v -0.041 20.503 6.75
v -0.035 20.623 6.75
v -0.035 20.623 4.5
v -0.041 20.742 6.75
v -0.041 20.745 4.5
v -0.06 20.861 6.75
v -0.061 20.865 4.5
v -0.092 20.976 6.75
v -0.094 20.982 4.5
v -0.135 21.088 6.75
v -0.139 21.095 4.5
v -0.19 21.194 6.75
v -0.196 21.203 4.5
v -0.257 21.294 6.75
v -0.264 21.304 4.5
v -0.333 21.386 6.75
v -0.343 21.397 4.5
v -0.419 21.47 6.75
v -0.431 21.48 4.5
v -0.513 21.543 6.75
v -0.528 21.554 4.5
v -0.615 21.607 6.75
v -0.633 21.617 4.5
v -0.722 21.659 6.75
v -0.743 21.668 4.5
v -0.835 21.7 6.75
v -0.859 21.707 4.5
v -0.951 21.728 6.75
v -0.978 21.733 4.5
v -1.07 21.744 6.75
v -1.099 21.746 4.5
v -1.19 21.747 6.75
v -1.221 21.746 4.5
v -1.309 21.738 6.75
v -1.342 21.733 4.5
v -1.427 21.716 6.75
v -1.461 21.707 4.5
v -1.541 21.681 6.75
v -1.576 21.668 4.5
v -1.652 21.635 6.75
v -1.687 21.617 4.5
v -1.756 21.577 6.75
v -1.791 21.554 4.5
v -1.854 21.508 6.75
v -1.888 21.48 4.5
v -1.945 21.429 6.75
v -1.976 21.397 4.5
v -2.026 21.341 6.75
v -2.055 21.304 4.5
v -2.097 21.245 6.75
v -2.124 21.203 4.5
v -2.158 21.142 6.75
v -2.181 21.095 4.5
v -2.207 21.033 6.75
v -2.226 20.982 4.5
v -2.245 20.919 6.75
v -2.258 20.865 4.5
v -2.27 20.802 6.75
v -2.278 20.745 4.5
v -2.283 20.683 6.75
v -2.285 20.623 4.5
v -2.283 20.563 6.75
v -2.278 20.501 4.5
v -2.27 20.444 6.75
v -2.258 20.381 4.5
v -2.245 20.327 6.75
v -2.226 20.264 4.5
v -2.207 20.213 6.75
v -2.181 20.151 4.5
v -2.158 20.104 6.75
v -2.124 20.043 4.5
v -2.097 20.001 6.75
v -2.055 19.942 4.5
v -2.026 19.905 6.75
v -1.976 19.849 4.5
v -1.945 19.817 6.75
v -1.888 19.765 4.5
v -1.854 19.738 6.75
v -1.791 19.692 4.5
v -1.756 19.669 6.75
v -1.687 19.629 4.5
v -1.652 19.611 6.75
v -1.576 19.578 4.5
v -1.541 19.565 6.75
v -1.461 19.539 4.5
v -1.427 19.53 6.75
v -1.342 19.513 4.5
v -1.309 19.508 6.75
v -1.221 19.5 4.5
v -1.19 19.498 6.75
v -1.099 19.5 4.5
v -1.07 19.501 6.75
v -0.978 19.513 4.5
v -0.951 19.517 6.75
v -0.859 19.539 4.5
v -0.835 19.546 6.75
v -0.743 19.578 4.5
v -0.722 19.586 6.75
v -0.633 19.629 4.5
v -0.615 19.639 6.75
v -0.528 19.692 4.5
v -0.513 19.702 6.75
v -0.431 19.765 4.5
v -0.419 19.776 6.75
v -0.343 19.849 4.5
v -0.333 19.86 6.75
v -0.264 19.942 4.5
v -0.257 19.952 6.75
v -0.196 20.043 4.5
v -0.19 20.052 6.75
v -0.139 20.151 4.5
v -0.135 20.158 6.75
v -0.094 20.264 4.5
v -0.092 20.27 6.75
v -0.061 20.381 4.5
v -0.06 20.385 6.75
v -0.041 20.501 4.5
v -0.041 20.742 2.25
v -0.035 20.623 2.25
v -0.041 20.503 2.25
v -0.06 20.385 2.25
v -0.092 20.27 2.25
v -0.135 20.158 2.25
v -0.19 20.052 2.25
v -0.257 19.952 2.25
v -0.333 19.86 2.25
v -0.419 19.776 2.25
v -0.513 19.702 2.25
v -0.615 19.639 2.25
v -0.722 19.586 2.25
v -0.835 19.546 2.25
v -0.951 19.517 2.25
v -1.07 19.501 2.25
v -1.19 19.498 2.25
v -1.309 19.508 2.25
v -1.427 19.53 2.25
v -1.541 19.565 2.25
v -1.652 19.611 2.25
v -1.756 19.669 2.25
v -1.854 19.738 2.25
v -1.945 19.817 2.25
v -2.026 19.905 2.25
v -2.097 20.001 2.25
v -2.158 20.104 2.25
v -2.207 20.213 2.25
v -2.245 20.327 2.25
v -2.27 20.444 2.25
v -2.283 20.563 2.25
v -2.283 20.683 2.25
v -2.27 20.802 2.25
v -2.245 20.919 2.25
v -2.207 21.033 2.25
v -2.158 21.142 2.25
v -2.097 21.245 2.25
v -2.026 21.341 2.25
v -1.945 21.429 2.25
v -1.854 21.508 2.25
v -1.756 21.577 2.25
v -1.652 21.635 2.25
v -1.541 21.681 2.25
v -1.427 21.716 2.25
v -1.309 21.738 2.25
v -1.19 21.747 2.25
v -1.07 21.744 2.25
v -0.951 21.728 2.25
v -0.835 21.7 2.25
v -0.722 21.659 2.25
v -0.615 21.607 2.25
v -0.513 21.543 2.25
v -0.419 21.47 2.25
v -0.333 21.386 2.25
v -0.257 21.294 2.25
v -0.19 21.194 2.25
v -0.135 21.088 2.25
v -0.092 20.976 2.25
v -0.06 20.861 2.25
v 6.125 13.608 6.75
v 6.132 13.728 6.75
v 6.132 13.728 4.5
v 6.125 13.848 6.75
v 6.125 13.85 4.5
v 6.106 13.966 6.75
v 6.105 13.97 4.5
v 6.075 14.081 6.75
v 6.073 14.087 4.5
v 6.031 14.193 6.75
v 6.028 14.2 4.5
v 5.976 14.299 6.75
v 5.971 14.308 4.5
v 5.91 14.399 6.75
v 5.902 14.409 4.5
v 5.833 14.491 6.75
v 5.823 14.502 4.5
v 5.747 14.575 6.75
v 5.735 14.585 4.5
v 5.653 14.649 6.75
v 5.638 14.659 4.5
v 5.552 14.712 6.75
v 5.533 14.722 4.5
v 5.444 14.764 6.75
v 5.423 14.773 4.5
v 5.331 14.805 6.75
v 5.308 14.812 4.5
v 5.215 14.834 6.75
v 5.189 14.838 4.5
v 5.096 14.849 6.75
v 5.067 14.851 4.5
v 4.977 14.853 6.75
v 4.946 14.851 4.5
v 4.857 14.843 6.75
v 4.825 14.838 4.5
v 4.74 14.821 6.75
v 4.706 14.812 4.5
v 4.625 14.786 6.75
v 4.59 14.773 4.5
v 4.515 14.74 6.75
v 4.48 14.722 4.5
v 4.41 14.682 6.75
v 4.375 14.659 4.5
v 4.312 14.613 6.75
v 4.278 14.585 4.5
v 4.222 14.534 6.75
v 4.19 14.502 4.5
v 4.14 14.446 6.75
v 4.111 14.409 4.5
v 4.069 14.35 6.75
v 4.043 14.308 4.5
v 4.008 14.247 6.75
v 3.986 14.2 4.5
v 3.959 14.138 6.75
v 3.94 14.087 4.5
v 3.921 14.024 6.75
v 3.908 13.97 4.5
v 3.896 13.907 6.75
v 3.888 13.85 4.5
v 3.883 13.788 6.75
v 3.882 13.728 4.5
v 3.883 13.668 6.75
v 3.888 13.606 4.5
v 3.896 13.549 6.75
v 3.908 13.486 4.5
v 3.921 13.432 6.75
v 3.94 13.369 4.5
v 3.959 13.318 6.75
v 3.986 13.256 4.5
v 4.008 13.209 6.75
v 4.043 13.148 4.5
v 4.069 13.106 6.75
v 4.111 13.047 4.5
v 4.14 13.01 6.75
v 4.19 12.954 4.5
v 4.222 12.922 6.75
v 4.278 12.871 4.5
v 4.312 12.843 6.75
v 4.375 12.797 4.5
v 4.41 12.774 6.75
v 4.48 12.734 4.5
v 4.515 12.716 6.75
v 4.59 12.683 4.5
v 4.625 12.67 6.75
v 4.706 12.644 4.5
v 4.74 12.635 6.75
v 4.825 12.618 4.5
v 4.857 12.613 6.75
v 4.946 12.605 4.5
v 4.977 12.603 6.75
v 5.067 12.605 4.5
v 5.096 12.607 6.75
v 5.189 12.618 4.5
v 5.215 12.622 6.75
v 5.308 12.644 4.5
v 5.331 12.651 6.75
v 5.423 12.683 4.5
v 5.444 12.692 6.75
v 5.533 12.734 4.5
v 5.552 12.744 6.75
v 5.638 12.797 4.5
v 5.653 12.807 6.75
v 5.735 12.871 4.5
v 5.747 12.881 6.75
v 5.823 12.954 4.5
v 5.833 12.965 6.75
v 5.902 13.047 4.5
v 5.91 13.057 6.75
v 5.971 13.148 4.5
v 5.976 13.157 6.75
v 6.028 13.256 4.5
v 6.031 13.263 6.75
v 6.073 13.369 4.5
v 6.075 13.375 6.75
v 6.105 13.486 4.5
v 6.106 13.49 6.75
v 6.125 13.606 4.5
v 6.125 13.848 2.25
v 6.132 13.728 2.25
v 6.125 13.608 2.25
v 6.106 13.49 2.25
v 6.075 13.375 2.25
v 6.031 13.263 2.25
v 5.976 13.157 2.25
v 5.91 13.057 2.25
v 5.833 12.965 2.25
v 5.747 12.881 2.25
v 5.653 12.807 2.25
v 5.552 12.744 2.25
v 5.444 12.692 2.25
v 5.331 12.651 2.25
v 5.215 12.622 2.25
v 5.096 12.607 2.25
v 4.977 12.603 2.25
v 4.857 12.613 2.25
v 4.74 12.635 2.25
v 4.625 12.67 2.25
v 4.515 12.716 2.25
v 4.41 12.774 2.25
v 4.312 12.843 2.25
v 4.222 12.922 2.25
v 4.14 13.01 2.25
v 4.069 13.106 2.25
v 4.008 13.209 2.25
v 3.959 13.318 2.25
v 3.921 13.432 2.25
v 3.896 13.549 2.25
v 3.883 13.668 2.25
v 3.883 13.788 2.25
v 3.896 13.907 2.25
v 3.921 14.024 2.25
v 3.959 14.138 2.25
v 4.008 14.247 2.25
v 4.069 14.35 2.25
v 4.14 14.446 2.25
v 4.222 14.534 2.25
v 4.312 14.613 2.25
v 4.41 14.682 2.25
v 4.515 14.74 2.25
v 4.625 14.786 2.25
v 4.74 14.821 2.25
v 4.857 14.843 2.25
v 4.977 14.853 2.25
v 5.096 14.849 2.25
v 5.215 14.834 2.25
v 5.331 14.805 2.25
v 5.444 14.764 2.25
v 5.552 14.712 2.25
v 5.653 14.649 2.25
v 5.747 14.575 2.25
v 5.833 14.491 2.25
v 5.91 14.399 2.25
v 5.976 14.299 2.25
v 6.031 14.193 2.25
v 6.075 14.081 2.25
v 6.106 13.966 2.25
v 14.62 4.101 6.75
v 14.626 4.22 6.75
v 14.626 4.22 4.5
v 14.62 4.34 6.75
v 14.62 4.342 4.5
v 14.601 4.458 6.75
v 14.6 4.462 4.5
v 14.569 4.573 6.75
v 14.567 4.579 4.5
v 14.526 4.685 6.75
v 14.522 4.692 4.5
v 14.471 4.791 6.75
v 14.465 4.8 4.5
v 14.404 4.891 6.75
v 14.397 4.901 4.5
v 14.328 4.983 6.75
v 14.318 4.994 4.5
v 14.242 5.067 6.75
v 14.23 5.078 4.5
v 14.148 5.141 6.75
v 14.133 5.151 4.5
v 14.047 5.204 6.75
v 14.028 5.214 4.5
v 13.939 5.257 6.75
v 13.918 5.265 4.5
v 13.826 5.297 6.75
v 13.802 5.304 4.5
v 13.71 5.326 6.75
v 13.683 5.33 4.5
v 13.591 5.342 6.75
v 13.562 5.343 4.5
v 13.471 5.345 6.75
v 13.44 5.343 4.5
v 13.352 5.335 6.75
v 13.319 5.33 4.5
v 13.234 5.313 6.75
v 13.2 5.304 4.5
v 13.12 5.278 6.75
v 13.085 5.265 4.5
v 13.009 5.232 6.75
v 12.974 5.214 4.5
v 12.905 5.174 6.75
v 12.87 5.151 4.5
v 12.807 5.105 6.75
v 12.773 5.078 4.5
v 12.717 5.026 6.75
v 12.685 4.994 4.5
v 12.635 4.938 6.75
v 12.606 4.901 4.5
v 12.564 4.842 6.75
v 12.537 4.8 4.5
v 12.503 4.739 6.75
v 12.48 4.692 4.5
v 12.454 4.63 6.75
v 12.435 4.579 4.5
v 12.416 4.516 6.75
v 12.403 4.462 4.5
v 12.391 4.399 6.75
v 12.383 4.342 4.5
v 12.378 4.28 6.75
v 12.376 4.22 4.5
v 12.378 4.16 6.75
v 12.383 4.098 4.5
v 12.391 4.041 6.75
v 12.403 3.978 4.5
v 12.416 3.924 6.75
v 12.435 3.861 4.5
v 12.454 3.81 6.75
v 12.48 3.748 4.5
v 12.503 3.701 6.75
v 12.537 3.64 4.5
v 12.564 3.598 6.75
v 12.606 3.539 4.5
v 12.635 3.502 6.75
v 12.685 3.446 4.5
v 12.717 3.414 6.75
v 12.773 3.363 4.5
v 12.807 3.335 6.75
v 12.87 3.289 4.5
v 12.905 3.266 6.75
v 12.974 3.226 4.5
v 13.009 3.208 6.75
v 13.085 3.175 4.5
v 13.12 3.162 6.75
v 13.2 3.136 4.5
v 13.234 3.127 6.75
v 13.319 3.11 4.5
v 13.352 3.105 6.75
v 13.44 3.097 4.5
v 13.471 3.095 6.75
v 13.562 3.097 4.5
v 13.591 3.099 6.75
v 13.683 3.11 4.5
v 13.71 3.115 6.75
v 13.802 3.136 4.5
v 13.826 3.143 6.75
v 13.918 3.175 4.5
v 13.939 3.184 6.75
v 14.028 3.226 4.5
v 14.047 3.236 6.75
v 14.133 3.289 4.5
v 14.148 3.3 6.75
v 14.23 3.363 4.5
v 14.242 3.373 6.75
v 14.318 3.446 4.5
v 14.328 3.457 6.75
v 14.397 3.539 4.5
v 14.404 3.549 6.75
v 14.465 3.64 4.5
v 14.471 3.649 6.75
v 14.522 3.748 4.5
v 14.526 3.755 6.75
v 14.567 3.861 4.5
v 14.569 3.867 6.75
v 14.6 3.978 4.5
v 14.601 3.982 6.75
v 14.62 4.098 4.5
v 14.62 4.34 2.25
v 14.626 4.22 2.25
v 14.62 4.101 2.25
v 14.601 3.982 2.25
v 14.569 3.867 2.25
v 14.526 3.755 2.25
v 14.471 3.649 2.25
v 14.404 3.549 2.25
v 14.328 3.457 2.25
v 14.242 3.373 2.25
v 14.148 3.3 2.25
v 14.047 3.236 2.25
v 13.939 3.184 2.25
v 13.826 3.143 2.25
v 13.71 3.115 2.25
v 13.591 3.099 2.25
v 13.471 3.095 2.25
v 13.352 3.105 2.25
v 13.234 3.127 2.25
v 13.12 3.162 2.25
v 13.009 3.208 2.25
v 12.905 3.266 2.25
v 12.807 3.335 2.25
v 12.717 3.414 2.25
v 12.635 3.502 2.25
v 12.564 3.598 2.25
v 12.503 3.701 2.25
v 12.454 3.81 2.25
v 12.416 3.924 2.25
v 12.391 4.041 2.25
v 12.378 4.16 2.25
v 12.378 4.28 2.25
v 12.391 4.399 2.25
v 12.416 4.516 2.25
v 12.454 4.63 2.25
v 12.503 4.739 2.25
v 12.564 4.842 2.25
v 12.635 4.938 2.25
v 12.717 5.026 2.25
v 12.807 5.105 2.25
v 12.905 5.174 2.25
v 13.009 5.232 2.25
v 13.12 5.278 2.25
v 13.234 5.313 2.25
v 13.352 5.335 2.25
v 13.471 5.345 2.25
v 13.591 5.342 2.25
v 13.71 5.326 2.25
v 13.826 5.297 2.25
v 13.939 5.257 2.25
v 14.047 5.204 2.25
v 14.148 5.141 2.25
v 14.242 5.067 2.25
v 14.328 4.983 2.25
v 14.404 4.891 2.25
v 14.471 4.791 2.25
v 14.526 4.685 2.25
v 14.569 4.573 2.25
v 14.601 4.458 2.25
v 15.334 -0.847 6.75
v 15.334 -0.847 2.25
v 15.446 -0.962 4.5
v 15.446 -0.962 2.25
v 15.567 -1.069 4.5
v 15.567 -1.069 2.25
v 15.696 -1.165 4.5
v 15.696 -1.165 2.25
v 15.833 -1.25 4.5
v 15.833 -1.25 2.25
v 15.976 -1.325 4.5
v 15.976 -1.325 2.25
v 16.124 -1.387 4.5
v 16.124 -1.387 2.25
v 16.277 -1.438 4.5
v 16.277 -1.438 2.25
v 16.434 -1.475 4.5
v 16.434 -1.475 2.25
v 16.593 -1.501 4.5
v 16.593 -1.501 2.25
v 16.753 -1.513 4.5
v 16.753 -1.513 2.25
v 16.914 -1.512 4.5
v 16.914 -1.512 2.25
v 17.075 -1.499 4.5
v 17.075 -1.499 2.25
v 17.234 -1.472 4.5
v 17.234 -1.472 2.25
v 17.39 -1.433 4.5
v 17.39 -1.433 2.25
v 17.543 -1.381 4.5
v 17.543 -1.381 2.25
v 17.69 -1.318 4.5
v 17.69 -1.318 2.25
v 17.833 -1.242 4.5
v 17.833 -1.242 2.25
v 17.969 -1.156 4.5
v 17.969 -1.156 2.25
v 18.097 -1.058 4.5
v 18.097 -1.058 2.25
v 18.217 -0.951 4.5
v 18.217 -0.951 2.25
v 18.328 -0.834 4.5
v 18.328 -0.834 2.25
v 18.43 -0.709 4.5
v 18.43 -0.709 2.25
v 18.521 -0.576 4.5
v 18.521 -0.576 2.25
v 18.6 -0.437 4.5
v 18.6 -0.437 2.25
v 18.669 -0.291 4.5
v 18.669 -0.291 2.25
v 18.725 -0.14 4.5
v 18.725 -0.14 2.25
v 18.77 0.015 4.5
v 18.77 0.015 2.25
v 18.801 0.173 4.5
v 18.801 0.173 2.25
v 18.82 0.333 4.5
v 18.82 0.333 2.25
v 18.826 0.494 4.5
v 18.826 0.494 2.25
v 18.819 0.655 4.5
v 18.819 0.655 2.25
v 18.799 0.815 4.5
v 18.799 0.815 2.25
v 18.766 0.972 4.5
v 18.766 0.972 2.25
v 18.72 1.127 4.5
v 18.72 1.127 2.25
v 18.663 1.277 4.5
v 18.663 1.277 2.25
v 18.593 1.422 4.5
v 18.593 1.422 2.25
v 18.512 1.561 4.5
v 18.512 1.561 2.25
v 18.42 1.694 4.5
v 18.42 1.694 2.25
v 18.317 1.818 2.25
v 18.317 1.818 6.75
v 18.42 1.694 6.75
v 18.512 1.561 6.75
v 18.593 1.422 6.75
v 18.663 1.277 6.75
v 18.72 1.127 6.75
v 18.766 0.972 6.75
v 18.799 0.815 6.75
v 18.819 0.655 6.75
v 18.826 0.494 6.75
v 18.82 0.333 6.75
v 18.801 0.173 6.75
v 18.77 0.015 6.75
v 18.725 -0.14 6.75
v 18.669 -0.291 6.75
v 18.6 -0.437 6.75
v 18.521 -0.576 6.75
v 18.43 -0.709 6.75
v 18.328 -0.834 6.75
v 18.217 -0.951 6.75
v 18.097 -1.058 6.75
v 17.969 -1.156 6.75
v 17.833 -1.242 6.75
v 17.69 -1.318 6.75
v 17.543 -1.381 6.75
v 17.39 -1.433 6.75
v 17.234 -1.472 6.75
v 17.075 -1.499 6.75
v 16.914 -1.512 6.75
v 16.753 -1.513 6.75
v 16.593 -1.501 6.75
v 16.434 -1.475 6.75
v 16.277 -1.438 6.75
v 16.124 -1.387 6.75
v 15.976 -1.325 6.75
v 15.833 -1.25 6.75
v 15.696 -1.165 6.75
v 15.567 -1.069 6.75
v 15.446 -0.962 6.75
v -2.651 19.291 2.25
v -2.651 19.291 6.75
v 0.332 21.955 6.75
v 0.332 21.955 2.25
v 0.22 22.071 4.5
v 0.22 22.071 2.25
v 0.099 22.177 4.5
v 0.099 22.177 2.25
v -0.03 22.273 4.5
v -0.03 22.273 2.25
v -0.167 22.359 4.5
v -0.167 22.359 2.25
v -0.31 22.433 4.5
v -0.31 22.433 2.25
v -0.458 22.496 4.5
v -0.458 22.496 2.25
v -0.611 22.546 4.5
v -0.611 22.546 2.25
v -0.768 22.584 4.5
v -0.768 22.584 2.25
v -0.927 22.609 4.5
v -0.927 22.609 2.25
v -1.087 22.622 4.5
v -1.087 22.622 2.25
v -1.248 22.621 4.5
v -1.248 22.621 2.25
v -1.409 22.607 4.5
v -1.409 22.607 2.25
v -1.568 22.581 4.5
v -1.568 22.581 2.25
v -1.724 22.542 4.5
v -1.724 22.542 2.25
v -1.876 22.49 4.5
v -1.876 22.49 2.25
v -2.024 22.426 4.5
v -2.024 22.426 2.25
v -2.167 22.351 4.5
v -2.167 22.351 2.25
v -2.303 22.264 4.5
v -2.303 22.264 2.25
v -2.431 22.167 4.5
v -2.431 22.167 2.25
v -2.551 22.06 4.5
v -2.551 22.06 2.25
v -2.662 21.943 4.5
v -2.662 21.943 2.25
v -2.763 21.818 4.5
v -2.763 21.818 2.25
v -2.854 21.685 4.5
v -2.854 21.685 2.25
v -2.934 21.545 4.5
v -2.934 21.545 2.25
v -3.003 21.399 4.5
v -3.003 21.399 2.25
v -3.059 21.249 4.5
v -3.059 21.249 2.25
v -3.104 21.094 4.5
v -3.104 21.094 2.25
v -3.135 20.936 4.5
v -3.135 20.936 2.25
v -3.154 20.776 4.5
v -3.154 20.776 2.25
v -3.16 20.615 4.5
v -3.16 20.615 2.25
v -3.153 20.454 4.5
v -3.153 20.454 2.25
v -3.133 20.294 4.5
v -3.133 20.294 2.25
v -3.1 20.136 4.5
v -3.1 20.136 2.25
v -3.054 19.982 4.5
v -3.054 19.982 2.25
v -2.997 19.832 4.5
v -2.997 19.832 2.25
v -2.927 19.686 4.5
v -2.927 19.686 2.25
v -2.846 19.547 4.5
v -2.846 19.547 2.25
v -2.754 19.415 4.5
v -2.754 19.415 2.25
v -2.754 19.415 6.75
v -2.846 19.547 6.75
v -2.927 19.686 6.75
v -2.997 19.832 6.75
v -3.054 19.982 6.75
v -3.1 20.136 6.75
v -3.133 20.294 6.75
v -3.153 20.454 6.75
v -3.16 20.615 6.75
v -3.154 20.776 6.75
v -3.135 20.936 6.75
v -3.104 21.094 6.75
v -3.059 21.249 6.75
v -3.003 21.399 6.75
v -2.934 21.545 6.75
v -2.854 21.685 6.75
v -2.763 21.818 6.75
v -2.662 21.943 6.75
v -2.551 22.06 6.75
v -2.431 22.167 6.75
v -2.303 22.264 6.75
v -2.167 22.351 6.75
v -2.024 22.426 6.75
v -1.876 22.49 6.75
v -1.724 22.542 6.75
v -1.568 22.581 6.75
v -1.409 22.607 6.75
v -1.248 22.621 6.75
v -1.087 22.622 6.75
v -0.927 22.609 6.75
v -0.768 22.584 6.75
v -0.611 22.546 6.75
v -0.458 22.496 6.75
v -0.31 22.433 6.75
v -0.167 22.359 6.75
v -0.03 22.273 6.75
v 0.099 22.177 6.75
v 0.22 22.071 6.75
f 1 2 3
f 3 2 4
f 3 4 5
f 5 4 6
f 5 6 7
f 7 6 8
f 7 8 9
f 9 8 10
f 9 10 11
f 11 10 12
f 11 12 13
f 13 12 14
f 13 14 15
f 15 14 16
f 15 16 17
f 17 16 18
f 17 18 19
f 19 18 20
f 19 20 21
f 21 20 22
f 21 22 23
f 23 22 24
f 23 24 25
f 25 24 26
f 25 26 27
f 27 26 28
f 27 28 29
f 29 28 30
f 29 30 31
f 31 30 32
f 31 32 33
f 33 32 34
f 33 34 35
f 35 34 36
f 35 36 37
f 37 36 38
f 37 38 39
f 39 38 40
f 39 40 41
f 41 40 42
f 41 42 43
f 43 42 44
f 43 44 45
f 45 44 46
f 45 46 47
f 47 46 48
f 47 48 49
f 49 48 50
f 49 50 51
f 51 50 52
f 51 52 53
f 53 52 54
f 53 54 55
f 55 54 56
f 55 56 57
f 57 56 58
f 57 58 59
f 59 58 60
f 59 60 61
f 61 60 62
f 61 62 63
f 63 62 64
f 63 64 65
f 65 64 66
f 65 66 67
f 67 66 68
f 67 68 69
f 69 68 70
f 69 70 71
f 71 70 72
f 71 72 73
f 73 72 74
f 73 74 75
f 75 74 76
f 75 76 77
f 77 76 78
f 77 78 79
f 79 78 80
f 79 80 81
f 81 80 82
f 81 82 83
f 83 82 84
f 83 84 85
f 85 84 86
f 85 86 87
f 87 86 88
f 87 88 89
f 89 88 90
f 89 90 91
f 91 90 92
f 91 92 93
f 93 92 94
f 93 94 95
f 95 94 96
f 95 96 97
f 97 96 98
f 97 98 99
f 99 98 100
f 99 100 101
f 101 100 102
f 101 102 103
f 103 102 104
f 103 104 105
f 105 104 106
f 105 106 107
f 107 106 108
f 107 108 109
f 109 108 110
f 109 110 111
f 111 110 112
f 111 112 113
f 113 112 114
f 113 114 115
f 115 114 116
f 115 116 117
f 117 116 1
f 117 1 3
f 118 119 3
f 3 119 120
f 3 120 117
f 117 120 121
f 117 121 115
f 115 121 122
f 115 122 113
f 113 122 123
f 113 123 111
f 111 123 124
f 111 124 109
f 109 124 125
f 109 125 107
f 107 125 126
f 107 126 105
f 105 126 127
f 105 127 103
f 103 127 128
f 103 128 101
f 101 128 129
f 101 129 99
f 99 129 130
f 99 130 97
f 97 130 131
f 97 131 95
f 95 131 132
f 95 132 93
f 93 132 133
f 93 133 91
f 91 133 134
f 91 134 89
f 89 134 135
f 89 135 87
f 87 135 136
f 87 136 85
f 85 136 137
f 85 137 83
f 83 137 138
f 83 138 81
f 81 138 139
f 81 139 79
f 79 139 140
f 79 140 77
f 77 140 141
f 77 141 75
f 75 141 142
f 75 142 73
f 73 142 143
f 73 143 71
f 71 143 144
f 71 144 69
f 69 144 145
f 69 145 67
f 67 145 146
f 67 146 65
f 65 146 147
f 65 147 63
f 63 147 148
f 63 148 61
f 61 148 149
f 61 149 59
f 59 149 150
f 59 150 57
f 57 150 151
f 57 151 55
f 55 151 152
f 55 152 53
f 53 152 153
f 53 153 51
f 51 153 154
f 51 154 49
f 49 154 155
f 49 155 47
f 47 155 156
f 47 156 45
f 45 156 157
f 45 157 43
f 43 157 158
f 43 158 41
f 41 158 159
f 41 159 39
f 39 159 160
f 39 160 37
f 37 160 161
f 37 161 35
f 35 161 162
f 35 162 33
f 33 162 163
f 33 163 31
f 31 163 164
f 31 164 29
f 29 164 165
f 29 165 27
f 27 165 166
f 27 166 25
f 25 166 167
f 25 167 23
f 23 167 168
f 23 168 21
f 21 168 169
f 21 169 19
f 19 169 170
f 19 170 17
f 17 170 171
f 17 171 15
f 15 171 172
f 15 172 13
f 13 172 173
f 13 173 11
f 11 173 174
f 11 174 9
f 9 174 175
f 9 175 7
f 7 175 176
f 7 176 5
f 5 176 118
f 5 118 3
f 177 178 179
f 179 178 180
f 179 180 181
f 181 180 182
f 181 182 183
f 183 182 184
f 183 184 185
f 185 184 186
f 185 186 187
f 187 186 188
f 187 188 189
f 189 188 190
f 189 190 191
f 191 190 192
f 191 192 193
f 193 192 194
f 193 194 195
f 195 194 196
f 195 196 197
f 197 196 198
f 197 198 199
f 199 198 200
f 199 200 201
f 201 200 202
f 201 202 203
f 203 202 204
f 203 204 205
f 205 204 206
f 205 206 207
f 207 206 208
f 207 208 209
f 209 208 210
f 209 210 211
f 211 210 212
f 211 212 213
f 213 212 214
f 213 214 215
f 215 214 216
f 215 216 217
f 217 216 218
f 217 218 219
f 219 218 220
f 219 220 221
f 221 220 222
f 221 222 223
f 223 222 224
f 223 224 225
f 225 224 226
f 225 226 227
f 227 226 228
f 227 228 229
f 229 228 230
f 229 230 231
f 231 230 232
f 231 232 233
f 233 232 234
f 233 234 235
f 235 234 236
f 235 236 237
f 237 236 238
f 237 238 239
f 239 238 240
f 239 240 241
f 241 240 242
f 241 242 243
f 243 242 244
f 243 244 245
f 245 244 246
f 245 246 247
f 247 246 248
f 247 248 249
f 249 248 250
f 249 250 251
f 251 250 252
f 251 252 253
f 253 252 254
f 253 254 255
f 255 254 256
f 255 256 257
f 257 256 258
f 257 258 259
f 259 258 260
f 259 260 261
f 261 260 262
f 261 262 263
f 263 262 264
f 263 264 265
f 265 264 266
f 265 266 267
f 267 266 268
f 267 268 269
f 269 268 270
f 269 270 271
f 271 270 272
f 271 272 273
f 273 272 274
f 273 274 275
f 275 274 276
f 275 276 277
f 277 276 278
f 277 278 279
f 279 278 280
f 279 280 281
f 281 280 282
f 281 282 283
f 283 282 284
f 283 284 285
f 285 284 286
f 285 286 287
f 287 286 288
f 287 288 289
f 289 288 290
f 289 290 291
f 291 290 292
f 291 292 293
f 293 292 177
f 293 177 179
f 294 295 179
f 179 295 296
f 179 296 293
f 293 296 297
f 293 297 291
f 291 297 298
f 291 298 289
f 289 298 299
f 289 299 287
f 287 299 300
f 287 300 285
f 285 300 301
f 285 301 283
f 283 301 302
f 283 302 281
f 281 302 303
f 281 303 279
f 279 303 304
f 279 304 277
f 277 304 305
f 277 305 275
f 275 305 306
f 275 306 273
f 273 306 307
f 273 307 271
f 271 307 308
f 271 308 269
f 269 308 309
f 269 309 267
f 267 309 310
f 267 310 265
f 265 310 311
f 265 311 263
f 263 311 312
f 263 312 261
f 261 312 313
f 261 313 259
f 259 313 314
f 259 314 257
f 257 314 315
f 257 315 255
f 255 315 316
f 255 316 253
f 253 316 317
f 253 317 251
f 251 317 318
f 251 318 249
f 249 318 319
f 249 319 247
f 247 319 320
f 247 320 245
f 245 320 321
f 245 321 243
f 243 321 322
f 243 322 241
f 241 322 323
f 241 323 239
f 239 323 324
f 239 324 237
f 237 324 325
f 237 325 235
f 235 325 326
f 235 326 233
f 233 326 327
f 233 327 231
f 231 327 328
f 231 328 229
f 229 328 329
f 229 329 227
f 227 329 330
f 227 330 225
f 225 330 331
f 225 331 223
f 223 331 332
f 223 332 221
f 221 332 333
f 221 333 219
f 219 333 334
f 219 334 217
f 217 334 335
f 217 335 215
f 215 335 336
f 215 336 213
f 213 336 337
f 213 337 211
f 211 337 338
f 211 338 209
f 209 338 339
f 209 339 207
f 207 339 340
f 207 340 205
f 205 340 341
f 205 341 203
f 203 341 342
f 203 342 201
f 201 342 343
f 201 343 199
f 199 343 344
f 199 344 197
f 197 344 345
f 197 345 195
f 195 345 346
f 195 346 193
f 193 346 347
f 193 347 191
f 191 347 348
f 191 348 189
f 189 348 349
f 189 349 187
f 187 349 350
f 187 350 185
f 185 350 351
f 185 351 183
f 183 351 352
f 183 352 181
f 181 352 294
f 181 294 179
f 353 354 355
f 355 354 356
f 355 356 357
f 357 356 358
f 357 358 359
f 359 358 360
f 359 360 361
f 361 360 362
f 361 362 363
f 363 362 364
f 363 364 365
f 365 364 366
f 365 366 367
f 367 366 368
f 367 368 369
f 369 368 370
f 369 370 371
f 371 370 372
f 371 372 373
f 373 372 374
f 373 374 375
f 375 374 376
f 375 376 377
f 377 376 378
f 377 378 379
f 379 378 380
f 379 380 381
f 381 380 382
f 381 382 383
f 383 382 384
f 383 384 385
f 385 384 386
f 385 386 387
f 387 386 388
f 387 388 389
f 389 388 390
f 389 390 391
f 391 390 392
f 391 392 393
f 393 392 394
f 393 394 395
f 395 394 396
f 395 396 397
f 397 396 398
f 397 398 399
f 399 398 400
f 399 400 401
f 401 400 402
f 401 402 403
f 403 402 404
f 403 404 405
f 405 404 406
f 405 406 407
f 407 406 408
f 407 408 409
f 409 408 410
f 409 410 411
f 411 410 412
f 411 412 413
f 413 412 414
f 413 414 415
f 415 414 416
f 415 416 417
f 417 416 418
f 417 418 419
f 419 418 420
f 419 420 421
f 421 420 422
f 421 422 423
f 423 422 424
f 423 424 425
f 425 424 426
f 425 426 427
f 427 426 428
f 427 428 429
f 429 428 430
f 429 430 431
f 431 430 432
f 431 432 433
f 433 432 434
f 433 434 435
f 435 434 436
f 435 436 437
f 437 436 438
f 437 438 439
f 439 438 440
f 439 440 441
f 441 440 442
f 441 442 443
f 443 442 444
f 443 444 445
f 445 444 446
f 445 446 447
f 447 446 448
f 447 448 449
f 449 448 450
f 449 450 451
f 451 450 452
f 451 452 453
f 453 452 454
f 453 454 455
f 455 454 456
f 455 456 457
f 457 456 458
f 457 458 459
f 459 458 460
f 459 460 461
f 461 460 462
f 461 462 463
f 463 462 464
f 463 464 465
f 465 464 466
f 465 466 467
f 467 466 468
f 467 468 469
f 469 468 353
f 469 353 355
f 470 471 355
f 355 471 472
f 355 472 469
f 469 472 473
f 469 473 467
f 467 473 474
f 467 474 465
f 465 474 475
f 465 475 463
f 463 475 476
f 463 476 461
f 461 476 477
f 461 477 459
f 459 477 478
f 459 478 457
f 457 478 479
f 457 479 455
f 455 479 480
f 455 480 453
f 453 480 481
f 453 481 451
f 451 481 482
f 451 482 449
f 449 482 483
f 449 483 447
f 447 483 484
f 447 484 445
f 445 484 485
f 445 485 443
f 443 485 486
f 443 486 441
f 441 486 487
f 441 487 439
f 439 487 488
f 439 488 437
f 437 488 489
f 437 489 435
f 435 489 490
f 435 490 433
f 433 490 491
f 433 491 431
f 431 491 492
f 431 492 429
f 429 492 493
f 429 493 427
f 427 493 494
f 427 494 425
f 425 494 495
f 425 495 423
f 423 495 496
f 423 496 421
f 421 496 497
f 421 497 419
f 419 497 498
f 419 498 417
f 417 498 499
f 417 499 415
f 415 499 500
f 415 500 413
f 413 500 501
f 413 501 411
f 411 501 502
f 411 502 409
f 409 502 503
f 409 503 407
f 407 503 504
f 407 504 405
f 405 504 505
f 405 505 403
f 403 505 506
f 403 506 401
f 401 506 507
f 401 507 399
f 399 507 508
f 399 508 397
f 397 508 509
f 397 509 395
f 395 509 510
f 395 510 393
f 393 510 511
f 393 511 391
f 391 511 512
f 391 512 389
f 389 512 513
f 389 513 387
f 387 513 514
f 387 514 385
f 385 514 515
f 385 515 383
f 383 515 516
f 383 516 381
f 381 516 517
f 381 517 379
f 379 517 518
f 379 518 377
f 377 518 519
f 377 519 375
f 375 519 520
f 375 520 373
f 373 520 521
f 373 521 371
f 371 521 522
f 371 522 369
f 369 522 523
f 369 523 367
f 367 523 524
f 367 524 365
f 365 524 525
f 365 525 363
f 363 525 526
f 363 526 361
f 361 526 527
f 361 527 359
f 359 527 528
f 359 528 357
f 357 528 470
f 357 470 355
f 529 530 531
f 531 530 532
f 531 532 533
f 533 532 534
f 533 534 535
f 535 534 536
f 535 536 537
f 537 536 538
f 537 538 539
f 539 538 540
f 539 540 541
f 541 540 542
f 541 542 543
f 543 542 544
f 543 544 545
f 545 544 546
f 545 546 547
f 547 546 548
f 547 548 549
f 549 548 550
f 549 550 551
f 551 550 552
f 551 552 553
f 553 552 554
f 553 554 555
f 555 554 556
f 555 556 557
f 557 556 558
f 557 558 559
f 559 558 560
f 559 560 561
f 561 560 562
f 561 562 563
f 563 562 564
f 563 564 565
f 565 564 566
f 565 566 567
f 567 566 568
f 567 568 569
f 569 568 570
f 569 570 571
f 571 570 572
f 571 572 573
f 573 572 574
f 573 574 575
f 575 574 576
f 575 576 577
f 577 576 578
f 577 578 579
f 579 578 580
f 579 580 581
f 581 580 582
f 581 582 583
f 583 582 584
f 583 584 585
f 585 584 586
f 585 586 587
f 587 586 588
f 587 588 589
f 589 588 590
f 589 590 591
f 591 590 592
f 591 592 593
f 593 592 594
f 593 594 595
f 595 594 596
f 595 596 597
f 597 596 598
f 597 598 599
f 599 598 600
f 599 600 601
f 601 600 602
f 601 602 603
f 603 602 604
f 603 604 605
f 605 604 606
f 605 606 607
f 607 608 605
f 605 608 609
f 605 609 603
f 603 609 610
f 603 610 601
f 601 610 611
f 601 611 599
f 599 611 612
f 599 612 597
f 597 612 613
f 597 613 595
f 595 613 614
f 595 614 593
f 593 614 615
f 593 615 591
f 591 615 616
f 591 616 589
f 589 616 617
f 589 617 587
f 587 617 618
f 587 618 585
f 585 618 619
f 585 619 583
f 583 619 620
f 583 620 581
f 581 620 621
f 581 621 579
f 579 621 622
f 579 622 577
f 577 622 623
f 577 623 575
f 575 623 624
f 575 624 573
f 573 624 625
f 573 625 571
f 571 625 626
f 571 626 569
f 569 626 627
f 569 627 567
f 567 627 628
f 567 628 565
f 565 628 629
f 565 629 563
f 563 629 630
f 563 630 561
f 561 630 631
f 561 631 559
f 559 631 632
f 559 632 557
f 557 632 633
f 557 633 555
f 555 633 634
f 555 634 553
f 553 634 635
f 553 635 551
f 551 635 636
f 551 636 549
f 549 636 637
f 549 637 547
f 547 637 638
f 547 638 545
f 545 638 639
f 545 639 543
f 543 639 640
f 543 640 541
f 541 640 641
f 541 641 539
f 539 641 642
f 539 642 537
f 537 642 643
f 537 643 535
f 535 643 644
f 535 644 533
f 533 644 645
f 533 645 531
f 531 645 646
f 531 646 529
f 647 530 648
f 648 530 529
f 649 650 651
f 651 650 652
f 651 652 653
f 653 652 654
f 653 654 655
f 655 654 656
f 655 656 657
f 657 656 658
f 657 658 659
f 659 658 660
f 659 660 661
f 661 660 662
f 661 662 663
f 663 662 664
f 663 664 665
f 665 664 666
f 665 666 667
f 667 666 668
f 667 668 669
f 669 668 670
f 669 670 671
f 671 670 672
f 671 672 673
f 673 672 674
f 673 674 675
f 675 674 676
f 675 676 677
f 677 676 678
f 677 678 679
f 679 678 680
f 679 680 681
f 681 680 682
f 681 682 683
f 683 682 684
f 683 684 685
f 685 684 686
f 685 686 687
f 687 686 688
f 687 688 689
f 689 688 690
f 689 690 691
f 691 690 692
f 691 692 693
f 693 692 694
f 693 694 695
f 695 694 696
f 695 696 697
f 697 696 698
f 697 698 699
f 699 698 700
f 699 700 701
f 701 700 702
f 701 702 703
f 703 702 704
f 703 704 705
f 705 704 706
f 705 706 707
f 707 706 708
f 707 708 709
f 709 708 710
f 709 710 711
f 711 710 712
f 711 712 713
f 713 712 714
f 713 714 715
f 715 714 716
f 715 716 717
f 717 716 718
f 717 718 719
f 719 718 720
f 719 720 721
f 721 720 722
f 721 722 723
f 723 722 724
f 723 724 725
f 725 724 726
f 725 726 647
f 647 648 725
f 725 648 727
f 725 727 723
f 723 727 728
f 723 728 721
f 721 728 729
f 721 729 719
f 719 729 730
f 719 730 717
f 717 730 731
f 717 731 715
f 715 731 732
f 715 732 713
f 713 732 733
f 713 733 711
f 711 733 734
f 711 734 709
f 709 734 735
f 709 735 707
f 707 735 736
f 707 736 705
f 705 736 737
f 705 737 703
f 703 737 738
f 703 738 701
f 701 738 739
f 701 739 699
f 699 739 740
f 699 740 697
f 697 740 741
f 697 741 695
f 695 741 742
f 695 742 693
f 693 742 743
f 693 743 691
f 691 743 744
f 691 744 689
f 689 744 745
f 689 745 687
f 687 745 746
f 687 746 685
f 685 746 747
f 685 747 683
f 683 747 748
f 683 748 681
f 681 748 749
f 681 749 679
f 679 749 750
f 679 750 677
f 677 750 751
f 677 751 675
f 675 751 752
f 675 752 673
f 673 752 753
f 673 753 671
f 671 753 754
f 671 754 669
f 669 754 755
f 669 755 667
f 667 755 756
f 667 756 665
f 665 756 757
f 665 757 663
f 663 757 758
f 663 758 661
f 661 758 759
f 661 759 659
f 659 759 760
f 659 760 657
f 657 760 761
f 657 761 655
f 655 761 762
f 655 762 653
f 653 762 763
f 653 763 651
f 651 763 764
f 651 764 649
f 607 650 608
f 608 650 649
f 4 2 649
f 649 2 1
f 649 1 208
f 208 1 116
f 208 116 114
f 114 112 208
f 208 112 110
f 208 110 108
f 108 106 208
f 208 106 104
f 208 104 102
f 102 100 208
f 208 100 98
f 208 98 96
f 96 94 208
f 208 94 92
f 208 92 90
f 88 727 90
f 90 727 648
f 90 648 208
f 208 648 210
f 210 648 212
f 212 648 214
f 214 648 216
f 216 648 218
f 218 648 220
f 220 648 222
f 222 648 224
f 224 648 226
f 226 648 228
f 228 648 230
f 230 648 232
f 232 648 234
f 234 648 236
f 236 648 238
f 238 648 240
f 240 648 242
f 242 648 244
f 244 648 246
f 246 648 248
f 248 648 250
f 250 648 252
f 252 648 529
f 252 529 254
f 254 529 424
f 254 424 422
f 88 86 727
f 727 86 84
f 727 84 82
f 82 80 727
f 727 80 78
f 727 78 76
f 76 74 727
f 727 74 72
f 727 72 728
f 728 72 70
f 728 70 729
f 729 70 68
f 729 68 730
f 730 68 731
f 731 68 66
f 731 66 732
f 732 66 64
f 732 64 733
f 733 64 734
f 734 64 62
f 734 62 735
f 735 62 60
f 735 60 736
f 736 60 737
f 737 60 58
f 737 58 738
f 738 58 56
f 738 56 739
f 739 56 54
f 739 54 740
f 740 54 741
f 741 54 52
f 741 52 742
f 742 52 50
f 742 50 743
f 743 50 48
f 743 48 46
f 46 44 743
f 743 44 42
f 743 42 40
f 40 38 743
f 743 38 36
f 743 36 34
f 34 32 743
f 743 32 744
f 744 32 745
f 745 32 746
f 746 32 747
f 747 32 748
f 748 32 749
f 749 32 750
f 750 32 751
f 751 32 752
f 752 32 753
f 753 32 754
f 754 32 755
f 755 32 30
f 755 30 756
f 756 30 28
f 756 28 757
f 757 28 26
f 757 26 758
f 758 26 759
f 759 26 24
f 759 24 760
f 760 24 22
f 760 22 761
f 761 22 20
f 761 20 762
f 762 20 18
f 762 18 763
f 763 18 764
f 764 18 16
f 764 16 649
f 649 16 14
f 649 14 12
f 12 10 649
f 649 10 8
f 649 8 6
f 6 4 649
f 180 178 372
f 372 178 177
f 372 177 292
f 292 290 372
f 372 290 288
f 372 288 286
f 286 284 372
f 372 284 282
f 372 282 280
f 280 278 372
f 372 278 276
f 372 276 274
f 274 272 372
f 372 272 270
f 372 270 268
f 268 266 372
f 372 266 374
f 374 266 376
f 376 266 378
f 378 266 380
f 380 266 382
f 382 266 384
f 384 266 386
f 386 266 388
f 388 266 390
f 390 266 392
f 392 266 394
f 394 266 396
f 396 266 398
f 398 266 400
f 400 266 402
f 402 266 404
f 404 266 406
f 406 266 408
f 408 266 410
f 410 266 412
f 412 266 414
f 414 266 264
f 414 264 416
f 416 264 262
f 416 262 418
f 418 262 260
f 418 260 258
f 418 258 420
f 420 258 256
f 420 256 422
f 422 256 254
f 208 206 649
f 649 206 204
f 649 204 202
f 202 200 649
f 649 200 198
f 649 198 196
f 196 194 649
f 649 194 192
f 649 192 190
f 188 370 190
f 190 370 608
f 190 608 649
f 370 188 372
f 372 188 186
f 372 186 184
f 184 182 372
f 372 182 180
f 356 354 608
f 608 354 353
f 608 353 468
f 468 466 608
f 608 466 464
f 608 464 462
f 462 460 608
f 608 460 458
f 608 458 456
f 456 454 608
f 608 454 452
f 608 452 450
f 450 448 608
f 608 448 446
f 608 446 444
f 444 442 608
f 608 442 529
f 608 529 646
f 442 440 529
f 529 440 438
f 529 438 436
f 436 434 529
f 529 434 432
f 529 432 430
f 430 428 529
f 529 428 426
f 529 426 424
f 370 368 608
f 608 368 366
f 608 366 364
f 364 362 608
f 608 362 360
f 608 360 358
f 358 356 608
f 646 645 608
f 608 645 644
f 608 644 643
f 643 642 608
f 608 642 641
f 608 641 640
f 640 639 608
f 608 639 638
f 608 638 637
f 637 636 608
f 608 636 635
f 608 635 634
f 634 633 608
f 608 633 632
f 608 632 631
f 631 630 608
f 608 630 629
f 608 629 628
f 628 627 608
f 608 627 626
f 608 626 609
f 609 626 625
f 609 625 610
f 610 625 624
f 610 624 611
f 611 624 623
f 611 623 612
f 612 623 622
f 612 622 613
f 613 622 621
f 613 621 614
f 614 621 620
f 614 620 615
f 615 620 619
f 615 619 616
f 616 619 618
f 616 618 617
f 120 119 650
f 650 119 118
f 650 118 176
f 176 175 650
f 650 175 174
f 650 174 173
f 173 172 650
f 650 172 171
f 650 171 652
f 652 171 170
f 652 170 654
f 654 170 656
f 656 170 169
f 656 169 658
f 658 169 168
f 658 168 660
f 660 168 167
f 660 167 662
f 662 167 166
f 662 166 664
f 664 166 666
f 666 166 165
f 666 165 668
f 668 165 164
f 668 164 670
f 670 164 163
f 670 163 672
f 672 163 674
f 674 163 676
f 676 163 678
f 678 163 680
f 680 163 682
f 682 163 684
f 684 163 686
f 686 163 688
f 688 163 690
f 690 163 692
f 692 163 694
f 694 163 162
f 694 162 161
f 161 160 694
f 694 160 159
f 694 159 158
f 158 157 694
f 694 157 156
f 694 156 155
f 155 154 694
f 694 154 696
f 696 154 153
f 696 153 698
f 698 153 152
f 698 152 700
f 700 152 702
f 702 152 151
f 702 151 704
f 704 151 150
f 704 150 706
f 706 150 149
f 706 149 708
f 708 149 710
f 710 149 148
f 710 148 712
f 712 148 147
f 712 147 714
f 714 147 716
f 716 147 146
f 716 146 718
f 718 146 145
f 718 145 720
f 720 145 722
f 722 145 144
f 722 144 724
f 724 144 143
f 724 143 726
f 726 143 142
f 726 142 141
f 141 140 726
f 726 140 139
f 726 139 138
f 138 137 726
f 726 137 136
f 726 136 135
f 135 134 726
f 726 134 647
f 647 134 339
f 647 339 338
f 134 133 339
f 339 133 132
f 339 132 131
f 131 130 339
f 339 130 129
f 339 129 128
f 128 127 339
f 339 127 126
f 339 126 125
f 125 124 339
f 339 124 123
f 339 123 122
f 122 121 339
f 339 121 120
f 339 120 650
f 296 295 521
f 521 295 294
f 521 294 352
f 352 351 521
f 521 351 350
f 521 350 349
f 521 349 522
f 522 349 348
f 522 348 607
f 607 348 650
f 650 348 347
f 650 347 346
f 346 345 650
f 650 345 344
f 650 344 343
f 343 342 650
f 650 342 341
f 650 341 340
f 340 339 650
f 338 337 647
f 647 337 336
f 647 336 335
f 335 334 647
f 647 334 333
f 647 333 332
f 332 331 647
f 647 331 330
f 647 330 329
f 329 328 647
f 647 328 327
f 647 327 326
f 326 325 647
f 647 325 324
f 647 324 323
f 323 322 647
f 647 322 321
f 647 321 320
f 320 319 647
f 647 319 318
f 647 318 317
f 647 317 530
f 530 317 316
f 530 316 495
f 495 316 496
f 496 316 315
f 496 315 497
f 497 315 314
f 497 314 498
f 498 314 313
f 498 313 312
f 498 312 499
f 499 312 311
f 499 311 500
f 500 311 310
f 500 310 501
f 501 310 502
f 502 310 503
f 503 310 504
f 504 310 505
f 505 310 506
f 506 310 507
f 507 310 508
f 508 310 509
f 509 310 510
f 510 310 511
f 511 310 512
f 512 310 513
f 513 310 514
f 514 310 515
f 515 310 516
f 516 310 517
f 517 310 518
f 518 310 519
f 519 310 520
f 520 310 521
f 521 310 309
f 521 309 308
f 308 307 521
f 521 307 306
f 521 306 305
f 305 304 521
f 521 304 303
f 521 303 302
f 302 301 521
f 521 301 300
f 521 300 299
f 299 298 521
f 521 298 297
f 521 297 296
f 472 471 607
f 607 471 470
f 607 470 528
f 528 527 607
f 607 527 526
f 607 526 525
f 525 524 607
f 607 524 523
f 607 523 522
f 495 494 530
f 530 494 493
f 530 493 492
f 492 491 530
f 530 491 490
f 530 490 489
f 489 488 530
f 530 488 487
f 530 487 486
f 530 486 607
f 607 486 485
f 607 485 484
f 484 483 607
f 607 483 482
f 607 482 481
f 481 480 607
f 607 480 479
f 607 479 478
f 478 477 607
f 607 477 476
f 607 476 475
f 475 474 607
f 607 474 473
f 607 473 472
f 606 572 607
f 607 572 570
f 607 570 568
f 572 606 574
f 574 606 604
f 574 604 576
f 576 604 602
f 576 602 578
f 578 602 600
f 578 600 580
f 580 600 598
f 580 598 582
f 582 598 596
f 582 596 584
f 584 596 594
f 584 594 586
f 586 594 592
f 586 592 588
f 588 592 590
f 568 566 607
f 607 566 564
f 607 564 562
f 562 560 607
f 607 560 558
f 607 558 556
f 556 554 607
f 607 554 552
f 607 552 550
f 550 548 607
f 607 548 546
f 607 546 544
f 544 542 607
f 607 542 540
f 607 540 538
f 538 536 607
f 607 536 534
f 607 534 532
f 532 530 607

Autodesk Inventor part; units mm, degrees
ref_plane "YZ Plane" through (0, 0, 0) normal (1, 0, 0) x (0, 1, 0)
ref_plane "XZ Plane" through (0, 0, 0) normal (0, 1, 0) x (-1, 0, 0)
ref_plane "XY Plane" through (0, 0, 0) normal (0, 0, 1) x (1, 0, 0)
sketch "Sketch1" plane through (0, 0, 0) normal (0, 0, 1) x (1, 0, 0)
  circle A0 centre (20.6614, -0.7818) radius 2.25 projected
  circle A1 centre (3.6717, 18.234) radius 2.25 projected
  circle A2 centre (-8.6609, 32.0238) radius 2.25 projected
  arc A3 (24.8863, -10.4155) -> (29.7342, -6.0856) centre (27.3102, -8.2505) ccw projected
  line L0 (27.3102, -8.2505) -> (-8.6609, 32.0238) construction
  line L1 (30.2936, -5.586) -> (-5.6776, 34.6883)
  line L2 (-11.6442, 29.3592) -> (24.3269, -10.9151)
  arc A4 (24.3269, -10.9151) -> (30.2936, -5.586) centre (27.3102, -8.2505) ccw
  arc A5 (-5.6776, 34.6883) -> (-11.6442, 29.3592) centre (-8.6609, 32.0238) ccw
  point P0 (0, 0)
  point P1 (9.3247, 11.8866)
  dimension "d0" = 8
extrude "Extrusion1" add sketch "Sketch1" along normal blind 9
scale "Scale1" factors (0.5, 0.5, 0.5) then translate (3.1707, 4.611, 2.25) bodies 1
properties part number "MassiveBone3"
